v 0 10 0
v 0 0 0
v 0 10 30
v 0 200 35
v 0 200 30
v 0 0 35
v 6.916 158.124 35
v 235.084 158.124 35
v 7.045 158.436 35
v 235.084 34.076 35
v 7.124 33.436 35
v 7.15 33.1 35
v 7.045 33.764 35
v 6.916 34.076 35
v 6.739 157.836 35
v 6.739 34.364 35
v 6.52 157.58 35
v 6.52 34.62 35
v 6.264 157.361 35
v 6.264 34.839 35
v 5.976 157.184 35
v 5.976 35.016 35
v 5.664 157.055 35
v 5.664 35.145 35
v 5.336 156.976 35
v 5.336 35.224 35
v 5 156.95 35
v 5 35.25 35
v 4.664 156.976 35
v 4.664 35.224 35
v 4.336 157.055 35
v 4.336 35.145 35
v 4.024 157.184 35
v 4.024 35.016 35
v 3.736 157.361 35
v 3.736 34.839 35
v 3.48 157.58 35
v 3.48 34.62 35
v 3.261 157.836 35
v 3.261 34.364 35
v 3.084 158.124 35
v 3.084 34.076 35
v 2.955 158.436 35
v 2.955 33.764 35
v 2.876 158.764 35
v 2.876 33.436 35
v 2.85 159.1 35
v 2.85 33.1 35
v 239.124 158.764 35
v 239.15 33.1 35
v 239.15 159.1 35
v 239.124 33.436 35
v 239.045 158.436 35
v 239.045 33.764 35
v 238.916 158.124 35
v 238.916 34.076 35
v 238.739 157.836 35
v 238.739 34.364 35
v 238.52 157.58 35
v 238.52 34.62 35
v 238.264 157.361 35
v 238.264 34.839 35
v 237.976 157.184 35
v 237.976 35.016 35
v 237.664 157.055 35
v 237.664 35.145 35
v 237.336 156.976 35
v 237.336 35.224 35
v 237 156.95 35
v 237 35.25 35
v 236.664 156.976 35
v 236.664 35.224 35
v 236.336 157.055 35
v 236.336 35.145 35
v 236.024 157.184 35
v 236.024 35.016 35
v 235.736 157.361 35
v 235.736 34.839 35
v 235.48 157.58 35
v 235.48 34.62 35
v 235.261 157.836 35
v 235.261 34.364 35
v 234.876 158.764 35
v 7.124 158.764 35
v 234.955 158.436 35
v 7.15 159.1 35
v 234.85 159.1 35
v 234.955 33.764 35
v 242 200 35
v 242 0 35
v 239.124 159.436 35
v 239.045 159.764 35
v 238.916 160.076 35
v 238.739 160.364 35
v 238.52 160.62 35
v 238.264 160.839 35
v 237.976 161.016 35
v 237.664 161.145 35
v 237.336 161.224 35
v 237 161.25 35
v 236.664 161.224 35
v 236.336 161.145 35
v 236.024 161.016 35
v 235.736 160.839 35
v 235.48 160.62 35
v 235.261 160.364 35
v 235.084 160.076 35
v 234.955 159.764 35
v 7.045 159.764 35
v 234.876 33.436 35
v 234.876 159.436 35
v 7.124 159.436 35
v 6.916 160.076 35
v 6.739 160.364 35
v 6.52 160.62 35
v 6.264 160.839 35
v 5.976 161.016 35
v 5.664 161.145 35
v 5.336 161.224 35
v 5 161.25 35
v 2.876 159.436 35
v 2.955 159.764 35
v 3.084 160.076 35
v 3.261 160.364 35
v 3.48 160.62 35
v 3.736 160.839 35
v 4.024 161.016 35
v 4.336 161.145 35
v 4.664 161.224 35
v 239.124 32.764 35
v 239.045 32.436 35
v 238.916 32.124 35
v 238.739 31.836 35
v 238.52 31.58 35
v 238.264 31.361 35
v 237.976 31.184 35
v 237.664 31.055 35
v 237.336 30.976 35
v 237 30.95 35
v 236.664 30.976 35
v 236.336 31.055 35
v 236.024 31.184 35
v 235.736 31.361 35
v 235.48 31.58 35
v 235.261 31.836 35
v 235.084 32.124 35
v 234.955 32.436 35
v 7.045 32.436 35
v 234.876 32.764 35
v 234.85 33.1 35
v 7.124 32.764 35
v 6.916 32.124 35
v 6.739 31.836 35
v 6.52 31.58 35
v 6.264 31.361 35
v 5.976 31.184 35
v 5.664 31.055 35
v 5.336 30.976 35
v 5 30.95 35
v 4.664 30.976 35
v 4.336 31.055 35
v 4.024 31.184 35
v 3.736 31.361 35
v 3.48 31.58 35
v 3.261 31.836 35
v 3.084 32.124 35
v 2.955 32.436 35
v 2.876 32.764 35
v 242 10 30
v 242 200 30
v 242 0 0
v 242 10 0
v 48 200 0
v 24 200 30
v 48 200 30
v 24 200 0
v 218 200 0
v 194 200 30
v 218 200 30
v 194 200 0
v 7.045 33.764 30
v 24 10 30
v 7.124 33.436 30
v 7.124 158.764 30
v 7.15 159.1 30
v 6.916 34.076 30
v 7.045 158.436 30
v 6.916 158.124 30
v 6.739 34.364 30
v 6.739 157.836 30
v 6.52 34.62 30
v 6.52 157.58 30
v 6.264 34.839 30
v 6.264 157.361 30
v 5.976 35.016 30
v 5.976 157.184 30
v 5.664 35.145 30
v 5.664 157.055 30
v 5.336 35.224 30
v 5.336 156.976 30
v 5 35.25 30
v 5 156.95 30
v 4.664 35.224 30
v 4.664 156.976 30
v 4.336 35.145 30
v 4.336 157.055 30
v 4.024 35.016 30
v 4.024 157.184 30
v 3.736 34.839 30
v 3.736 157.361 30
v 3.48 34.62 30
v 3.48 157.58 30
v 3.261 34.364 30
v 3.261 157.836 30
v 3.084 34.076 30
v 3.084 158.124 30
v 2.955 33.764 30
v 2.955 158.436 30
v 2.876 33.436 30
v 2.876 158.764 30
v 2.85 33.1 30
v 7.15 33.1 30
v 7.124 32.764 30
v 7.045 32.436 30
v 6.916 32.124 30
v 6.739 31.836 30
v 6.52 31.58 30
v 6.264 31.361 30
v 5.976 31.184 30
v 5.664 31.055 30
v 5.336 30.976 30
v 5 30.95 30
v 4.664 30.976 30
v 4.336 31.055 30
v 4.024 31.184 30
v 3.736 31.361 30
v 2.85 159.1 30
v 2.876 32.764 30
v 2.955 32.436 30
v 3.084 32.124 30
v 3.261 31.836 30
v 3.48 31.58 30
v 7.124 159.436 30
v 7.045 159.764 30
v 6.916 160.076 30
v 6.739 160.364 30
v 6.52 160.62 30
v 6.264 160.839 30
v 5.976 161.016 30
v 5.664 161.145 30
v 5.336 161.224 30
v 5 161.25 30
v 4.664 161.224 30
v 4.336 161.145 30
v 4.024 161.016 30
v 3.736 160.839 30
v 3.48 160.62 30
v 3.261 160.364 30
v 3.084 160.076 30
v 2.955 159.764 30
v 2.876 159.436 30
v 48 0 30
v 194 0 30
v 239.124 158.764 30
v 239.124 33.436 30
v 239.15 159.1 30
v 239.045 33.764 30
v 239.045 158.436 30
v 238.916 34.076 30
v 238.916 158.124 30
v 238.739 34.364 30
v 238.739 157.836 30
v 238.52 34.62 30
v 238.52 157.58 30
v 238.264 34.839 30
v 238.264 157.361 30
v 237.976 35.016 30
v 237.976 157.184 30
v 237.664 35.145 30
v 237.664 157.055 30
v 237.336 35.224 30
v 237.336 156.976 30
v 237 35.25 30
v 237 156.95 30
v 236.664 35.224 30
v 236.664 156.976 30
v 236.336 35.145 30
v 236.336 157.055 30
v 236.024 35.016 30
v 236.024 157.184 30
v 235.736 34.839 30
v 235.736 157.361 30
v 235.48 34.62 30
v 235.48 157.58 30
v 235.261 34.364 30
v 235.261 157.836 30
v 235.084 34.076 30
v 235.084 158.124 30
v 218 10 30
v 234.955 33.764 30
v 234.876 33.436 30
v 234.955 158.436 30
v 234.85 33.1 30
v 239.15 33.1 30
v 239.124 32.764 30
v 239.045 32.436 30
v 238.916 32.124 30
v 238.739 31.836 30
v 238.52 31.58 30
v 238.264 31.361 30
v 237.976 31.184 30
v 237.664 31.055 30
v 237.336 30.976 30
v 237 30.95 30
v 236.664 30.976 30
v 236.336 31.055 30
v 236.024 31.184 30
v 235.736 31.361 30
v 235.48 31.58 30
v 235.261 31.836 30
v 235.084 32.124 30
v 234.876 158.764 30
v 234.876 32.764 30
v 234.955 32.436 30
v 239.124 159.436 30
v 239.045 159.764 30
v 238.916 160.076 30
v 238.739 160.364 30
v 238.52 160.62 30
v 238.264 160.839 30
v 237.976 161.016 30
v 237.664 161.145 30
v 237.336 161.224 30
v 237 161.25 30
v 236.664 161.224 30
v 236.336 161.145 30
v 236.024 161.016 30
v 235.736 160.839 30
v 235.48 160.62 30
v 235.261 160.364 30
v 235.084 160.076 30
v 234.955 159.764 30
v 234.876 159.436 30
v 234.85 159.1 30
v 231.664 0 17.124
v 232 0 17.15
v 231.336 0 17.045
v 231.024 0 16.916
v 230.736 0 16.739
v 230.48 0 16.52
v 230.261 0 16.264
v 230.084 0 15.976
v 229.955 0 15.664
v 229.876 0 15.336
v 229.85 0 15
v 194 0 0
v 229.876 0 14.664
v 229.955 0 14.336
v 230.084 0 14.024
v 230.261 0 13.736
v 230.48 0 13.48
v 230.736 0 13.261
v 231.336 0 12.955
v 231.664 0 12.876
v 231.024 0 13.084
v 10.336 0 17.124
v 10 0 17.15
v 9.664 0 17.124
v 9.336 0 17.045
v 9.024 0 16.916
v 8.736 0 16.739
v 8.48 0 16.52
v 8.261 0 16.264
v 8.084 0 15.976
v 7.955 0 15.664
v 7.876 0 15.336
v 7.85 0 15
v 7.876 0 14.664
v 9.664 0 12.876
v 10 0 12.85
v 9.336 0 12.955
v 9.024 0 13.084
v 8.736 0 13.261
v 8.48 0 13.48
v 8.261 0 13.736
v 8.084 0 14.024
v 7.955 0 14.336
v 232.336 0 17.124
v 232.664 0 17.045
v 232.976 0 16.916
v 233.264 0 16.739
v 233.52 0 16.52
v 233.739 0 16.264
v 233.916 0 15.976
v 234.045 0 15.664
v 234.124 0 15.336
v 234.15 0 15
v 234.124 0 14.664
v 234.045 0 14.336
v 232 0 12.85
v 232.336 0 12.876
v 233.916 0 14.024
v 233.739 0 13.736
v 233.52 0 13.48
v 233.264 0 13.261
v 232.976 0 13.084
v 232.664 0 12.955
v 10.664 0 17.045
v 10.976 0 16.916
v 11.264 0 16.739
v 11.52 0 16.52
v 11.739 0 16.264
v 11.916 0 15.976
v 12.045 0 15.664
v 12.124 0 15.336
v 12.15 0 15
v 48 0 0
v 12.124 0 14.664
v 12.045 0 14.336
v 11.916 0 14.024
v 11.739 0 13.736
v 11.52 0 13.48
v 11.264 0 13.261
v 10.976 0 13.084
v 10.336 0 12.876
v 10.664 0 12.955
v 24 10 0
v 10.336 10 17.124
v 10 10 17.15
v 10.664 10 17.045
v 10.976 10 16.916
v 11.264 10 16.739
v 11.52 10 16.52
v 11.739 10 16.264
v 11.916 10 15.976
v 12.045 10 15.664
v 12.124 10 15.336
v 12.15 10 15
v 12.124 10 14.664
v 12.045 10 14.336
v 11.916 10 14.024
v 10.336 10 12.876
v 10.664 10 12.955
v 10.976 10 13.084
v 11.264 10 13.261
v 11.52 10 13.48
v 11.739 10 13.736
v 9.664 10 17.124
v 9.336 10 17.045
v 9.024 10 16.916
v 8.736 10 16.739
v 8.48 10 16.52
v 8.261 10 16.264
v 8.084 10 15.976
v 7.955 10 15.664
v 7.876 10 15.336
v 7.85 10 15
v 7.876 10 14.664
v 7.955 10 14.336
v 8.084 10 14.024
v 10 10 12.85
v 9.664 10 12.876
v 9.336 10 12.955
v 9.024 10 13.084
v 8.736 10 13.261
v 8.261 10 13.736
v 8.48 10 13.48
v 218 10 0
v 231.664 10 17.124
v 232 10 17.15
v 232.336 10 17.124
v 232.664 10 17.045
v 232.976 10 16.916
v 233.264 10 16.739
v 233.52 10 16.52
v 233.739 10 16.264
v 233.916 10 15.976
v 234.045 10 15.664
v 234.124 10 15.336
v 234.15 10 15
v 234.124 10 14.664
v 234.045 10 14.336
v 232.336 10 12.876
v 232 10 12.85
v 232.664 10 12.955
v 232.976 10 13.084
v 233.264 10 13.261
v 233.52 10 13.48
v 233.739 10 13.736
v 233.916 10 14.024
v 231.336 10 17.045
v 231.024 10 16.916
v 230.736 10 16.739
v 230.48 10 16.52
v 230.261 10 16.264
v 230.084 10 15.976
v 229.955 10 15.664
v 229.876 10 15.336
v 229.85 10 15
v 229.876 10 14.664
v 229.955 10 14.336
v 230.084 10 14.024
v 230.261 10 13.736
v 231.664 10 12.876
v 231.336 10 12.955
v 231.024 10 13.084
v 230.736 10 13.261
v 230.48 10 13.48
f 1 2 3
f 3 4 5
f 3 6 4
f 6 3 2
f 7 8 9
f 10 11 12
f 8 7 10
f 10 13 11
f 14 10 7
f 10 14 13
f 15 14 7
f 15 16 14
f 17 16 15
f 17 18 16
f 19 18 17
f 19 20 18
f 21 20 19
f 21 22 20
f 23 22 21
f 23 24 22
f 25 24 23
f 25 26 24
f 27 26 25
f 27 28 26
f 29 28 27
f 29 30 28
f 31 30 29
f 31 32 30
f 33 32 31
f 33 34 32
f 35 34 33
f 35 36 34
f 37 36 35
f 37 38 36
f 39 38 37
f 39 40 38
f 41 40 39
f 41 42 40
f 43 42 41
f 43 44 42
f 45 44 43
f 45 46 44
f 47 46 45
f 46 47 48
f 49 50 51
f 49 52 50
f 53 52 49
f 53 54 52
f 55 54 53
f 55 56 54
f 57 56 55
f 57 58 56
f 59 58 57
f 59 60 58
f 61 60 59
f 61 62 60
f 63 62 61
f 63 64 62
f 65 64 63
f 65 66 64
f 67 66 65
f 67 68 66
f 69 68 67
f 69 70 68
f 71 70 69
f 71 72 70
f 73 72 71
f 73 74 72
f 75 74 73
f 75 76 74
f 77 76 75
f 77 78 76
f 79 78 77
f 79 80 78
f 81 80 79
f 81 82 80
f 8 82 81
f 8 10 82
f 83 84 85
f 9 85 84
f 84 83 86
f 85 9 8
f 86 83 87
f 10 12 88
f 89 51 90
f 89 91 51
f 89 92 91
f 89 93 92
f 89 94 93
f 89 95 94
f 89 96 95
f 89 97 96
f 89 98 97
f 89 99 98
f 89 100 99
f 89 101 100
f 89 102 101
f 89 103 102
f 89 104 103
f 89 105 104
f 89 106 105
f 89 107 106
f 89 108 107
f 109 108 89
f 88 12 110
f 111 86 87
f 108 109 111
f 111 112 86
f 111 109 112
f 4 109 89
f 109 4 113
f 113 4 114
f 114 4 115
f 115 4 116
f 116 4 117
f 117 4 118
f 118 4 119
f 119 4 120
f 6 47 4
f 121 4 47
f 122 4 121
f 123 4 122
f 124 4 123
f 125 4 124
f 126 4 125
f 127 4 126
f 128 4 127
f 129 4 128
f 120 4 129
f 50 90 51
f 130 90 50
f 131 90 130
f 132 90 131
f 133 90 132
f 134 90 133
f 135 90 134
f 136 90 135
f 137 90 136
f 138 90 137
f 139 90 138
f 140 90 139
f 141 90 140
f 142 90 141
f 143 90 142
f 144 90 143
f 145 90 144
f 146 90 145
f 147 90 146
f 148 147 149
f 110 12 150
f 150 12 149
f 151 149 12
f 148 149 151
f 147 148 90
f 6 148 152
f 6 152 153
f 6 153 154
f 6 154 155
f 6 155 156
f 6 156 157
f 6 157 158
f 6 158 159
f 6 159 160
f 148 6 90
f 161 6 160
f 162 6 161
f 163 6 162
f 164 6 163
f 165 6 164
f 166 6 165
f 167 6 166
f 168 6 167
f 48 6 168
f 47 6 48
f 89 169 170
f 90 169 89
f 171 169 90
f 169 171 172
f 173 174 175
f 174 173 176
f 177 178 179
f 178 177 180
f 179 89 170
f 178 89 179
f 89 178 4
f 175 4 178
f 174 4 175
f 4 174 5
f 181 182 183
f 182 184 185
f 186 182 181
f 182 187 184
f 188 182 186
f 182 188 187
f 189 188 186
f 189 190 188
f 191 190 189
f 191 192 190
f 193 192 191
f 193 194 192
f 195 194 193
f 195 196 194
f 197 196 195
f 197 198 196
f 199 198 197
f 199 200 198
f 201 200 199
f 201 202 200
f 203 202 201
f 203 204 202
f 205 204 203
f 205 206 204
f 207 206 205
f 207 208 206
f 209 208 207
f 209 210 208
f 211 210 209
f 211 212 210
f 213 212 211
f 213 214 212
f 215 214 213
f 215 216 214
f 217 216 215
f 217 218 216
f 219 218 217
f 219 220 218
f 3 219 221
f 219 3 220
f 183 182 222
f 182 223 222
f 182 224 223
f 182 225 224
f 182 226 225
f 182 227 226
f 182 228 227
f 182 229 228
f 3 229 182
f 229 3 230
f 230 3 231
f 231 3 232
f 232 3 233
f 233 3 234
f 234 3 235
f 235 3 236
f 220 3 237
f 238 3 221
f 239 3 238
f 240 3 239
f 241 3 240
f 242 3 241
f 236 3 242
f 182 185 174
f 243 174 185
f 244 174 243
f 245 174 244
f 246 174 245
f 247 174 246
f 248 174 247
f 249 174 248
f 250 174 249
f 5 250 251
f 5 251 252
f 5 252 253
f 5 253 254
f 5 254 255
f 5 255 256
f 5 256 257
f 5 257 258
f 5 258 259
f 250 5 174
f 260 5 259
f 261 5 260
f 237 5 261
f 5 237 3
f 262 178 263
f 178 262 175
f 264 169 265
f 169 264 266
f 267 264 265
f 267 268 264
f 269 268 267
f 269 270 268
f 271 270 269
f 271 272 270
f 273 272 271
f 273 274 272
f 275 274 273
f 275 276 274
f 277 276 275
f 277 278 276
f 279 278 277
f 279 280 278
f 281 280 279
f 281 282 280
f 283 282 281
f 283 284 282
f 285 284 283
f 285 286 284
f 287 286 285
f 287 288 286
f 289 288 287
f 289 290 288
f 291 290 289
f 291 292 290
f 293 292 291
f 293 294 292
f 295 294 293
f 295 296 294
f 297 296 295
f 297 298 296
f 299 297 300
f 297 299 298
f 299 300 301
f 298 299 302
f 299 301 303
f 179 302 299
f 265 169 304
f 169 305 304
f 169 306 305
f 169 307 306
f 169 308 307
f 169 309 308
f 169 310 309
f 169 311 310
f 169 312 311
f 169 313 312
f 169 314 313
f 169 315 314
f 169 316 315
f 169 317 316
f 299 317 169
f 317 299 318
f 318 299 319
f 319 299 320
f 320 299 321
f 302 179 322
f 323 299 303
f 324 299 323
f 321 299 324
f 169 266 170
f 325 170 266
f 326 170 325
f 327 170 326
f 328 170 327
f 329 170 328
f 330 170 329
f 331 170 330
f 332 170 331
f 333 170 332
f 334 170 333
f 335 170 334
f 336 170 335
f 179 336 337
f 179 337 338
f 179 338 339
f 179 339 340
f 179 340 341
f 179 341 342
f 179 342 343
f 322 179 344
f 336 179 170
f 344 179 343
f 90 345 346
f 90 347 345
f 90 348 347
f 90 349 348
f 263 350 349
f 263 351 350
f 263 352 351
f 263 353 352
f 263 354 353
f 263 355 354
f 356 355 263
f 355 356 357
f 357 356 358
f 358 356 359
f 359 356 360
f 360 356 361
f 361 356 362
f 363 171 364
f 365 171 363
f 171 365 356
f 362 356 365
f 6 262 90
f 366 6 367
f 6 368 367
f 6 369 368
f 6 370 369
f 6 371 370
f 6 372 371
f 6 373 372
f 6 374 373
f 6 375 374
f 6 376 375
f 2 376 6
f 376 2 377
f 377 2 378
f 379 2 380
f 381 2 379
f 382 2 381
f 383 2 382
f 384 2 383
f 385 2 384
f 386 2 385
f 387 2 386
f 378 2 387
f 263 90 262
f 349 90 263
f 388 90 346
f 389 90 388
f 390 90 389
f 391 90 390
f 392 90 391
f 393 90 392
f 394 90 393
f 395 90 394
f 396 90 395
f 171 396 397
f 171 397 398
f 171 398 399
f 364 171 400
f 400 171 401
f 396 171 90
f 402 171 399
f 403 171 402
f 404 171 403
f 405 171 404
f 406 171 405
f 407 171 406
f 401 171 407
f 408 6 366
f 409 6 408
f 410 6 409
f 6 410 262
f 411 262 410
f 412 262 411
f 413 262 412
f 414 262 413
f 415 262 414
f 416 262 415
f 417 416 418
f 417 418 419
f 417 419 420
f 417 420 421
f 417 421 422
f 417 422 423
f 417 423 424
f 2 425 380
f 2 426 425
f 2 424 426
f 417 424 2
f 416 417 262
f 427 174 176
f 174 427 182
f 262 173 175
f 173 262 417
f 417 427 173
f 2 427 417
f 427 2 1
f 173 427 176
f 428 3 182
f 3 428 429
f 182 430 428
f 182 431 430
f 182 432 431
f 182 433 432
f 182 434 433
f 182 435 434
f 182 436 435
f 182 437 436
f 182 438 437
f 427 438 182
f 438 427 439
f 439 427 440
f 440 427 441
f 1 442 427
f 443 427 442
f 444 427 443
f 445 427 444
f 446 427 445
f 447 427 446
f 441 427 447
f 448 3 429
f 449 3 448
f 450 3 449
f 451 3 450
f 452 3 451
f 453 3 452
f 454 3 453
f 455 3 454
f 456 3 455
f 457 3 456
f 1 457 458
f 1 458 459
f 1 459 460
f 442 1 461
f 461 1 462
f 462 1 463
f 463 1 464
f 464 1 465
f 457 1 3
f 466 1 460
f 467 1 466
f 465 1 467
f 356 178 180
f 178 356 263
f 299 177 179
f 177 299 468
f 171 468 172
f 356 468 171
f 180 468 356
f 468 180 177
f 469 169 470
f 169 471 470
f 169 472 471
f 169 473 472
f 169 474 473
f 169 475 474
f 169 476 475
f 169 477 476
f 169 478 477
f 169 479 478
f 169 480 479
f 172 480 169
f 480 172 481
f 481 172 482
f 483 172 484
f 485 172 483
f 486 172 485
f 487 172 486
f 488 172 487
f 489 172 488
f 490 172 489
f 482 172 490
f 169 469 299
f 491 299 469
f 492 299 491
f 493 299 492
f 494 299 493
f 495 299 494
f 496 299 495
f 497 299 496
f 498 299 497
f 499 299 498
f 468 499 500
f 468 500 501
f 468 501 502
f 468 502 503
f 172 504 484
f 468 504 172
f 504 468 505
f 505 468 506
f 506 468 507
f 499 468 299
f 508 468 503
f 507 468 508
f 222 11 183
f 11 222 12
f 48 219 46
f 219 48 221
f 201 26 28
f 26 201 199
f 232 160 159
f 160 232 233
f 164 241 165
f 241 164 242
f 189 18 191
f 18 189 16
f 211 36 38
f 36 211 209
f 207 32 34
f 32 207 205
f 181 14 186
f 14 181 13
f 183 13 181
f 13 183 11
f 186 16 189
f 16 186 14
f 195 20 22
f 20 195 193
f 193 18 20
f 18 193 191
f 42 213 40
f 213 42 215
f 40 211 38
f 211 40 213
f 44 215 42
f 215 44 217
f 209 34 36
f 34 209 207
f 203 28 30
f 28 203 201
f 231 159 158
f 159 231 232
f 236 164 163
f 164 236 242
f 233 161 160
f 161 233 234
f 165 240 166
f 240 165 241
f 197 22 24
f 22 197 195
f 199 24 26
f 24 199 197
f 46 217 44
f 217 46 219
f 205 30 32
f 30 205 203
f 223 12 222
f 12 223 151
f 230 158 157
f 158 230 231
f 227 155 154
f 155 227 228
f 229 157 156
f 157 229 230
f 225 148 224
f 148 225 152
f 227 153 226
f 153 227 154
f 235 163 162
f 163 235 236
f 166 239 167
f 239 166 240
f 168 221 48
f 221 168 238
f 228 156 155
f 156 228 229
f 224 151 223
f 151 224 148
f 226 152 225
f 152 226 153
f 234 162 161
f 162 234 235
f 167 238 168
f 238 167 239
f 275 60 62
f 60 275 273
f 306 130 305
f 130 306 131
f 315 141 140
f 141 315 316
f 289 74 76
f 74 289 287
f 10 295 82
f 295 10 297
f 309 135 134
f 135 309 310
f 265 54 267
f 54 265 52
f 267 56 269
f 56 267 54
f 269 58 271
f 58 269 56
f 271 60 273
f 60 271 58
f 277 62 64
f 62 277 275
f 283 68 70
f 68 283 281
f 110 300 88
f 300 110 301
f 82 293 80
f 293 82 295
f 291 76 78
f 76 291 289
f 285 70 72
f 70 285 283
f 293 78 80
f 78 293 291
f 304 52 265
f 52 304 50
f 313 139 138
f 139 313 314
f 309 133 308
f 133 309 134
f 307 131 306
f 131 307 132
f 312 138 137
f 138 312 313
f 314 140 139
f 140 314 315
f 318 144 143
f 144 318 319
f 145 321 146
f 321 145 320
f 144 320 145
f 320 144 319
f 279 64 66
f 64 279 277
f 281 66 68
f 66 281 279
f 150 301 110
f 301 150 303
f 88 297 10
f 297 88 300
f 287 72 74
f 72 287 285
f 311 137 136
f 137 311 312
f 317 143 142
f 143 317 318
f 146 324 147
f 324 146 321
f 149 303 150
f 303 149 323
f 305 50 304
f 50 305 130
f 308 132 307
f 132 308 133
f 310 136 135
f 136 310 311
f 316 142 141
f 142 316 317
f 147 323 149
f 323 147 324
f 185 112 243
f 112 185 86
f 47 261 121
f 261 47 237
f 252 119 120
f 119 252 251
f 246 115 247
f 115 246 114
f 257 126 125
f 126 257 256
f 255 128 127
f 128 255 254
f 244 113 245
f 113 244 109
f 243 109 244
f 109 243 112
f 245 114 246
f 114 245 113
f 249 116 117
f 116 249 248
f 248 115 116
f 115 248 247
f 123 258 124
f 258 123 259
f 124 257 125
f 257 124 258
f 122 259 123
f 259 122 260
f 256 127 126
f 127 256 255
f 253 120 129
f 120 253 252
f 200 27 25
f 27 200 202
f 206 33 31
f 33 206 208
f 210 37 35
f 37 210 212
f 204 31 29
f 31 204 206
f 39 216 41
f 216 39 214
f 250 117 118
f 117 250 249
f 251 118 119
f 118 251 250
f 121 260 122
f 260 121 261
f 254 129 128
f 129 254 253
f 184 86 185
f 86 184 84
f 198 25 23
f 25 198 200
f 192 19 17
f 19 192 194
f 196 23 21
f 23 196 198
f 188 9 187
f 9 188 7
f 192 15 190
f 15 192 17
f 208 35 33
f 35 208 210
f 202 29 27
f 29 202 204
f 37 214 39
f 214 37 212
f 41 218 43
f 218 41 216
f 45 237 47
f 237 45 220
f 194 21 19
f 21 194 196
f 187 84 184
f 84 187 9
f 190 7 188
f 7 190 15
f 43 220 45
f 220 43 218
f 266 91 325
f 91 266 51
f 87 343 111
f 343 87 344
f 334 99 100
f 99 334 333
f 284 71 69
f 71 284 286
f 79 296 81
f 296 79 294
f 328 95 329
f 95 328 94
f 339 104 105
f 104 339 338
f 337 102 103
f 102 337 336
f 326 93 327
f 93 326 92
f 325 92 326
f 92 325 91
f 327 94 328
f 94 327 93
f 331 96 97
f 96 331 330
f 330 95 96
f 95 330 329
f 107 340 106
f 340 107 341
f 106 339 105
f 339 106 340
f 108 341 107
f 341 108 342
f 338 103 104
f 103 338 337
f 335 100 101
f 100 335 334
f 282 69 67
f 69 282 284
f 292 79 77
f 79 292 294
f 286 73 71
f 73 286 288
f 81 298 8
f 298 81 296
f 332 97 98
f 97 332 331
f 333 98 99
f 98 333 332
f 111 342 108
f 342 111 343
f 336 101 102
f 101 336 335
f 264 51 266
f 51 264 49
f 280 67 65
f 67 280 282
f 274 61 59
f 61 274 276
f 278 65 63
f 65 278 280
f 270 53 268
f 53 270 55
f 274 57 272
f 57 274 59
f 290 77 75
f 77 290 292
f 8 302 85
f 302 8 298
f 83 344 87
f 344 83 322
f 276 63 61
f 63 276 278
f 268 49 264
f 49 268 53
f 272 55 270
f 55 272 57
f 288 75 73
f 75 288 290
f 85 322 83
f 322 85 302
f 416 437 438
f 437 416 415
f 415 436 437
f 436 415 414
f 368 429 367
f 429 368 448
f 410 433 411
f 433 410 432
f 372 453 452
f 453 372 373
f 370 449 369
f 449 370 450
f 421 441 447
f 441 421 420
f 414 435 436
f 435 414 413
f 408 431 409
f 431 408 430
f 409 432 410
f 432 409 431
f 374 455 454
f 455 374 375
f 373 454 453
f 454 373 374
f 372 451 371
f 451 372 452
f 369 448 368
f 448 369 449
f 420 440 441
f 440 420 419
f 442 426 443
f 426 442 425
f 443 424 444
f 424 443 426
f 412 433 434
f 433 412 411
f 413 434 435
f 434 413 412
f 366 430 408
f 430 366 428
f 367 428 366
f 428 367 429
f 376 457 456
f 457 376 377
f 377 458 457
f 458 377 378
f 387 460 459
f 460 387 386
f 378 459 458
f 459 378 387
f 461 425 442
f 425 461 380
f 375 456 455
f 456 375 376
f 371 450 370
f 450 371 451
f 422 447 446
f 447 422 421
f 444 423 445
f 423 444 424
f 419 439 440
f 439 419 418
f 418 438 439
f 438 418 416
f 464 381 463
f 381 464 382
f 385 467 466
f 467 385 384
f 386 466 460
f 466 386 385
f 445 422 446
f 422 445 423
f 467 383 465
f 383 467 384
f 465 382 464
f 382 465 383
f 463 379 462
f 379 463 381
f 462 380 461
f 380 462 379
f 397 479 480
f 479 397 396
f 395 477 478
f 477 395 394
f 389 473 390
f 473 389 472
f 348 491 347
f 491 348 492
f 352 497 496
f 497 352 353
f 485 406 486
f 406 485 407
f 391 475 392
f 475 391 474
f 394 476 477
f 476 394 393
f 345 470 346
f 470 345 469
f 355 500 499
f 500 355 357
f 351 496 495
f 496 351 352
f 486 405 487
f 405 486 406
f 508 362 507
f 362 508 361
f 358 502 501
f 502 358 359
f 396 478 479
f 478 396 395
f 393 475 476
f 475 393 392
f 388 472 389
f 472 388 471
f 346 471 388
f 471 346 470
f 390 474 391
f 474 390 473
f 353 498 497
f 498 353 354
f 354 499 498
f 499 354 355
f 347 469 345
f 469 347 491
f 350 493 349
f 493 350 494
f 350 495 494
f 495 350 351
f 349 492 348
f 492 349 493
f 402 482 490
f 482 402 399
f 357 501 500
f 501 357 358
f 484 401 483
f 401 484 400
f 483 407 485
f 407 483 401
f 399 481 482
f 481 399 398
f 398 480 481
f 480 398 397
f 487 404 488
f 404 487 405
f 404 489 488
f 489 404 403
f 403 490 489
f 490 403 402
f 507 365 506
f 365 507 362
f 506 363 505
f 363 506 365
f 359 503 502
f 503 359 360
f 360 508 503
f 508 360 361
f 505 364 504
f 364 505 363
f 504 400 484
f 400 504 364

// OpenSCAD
// NDE-1000 Mount Base Parameters
device_width = 242;         // Width of NDE-1000
device_depth = 200;         // Depth
base_thickness = 5;         // 5 mm thick printable base
hole_diameter = 4.3;        // For M4 screw
hole_offset_x = 5;         // From side edges
hole_offset_y = 33.1;         // From front
hole_offset_y_rear = 159.1;         // From rear
Base_Up = 30;
Wing_Width = 24;

// Mounting Hole Positions (relative to base)
hole_positions = [
    [hole_offset_x, hole_offset_y],
    [device_width - hole_offset_x, hole_offset_y],
    [hole_offset_x, hole_offset_y_rear],
    [device_width - hole_offset_x, hole_offset_y_rear]
];

difference() {
    union(){
        // Base plate
        translate([0, 0, Base_Up])
            cube([device_width, device_depth, base_thickness]);
        
        translate([Wing_Width, 0, 0])
            cube([Wing_Width, device_depth, Base_Up]);
        
        cube([24, 10, Base_Up]);
        
        translate([device_width - Wing_Width * 2, 0, 0])
            cube([Wing_Width, device_depth, Base_Up]);
        
        translate([device_width - Wing_Width, 0, 0])
            cube([24, 10, Base_Up]);

    }

    // Screw holes
    translate([0, 0, Base_Up])
        for (pos = hole_positions) {
            translate([pos[0], pos[1], -1])  // go slightly below to guarantee cut
                cylinder(d = hole_diameter, h = base_thickness + 2, $fn = 40);
        }
        
    translate([10, 50, 15])
        rotate([90, 0, 0])
            cylinder(d=hole_diameter, h=100, $fn=40);
        
    translate([device_width - 10, 50, 15])
        rotate([90, 0, 0])
            cylinder(d=hole_diameter, h=100, $fn=40);
        
}
